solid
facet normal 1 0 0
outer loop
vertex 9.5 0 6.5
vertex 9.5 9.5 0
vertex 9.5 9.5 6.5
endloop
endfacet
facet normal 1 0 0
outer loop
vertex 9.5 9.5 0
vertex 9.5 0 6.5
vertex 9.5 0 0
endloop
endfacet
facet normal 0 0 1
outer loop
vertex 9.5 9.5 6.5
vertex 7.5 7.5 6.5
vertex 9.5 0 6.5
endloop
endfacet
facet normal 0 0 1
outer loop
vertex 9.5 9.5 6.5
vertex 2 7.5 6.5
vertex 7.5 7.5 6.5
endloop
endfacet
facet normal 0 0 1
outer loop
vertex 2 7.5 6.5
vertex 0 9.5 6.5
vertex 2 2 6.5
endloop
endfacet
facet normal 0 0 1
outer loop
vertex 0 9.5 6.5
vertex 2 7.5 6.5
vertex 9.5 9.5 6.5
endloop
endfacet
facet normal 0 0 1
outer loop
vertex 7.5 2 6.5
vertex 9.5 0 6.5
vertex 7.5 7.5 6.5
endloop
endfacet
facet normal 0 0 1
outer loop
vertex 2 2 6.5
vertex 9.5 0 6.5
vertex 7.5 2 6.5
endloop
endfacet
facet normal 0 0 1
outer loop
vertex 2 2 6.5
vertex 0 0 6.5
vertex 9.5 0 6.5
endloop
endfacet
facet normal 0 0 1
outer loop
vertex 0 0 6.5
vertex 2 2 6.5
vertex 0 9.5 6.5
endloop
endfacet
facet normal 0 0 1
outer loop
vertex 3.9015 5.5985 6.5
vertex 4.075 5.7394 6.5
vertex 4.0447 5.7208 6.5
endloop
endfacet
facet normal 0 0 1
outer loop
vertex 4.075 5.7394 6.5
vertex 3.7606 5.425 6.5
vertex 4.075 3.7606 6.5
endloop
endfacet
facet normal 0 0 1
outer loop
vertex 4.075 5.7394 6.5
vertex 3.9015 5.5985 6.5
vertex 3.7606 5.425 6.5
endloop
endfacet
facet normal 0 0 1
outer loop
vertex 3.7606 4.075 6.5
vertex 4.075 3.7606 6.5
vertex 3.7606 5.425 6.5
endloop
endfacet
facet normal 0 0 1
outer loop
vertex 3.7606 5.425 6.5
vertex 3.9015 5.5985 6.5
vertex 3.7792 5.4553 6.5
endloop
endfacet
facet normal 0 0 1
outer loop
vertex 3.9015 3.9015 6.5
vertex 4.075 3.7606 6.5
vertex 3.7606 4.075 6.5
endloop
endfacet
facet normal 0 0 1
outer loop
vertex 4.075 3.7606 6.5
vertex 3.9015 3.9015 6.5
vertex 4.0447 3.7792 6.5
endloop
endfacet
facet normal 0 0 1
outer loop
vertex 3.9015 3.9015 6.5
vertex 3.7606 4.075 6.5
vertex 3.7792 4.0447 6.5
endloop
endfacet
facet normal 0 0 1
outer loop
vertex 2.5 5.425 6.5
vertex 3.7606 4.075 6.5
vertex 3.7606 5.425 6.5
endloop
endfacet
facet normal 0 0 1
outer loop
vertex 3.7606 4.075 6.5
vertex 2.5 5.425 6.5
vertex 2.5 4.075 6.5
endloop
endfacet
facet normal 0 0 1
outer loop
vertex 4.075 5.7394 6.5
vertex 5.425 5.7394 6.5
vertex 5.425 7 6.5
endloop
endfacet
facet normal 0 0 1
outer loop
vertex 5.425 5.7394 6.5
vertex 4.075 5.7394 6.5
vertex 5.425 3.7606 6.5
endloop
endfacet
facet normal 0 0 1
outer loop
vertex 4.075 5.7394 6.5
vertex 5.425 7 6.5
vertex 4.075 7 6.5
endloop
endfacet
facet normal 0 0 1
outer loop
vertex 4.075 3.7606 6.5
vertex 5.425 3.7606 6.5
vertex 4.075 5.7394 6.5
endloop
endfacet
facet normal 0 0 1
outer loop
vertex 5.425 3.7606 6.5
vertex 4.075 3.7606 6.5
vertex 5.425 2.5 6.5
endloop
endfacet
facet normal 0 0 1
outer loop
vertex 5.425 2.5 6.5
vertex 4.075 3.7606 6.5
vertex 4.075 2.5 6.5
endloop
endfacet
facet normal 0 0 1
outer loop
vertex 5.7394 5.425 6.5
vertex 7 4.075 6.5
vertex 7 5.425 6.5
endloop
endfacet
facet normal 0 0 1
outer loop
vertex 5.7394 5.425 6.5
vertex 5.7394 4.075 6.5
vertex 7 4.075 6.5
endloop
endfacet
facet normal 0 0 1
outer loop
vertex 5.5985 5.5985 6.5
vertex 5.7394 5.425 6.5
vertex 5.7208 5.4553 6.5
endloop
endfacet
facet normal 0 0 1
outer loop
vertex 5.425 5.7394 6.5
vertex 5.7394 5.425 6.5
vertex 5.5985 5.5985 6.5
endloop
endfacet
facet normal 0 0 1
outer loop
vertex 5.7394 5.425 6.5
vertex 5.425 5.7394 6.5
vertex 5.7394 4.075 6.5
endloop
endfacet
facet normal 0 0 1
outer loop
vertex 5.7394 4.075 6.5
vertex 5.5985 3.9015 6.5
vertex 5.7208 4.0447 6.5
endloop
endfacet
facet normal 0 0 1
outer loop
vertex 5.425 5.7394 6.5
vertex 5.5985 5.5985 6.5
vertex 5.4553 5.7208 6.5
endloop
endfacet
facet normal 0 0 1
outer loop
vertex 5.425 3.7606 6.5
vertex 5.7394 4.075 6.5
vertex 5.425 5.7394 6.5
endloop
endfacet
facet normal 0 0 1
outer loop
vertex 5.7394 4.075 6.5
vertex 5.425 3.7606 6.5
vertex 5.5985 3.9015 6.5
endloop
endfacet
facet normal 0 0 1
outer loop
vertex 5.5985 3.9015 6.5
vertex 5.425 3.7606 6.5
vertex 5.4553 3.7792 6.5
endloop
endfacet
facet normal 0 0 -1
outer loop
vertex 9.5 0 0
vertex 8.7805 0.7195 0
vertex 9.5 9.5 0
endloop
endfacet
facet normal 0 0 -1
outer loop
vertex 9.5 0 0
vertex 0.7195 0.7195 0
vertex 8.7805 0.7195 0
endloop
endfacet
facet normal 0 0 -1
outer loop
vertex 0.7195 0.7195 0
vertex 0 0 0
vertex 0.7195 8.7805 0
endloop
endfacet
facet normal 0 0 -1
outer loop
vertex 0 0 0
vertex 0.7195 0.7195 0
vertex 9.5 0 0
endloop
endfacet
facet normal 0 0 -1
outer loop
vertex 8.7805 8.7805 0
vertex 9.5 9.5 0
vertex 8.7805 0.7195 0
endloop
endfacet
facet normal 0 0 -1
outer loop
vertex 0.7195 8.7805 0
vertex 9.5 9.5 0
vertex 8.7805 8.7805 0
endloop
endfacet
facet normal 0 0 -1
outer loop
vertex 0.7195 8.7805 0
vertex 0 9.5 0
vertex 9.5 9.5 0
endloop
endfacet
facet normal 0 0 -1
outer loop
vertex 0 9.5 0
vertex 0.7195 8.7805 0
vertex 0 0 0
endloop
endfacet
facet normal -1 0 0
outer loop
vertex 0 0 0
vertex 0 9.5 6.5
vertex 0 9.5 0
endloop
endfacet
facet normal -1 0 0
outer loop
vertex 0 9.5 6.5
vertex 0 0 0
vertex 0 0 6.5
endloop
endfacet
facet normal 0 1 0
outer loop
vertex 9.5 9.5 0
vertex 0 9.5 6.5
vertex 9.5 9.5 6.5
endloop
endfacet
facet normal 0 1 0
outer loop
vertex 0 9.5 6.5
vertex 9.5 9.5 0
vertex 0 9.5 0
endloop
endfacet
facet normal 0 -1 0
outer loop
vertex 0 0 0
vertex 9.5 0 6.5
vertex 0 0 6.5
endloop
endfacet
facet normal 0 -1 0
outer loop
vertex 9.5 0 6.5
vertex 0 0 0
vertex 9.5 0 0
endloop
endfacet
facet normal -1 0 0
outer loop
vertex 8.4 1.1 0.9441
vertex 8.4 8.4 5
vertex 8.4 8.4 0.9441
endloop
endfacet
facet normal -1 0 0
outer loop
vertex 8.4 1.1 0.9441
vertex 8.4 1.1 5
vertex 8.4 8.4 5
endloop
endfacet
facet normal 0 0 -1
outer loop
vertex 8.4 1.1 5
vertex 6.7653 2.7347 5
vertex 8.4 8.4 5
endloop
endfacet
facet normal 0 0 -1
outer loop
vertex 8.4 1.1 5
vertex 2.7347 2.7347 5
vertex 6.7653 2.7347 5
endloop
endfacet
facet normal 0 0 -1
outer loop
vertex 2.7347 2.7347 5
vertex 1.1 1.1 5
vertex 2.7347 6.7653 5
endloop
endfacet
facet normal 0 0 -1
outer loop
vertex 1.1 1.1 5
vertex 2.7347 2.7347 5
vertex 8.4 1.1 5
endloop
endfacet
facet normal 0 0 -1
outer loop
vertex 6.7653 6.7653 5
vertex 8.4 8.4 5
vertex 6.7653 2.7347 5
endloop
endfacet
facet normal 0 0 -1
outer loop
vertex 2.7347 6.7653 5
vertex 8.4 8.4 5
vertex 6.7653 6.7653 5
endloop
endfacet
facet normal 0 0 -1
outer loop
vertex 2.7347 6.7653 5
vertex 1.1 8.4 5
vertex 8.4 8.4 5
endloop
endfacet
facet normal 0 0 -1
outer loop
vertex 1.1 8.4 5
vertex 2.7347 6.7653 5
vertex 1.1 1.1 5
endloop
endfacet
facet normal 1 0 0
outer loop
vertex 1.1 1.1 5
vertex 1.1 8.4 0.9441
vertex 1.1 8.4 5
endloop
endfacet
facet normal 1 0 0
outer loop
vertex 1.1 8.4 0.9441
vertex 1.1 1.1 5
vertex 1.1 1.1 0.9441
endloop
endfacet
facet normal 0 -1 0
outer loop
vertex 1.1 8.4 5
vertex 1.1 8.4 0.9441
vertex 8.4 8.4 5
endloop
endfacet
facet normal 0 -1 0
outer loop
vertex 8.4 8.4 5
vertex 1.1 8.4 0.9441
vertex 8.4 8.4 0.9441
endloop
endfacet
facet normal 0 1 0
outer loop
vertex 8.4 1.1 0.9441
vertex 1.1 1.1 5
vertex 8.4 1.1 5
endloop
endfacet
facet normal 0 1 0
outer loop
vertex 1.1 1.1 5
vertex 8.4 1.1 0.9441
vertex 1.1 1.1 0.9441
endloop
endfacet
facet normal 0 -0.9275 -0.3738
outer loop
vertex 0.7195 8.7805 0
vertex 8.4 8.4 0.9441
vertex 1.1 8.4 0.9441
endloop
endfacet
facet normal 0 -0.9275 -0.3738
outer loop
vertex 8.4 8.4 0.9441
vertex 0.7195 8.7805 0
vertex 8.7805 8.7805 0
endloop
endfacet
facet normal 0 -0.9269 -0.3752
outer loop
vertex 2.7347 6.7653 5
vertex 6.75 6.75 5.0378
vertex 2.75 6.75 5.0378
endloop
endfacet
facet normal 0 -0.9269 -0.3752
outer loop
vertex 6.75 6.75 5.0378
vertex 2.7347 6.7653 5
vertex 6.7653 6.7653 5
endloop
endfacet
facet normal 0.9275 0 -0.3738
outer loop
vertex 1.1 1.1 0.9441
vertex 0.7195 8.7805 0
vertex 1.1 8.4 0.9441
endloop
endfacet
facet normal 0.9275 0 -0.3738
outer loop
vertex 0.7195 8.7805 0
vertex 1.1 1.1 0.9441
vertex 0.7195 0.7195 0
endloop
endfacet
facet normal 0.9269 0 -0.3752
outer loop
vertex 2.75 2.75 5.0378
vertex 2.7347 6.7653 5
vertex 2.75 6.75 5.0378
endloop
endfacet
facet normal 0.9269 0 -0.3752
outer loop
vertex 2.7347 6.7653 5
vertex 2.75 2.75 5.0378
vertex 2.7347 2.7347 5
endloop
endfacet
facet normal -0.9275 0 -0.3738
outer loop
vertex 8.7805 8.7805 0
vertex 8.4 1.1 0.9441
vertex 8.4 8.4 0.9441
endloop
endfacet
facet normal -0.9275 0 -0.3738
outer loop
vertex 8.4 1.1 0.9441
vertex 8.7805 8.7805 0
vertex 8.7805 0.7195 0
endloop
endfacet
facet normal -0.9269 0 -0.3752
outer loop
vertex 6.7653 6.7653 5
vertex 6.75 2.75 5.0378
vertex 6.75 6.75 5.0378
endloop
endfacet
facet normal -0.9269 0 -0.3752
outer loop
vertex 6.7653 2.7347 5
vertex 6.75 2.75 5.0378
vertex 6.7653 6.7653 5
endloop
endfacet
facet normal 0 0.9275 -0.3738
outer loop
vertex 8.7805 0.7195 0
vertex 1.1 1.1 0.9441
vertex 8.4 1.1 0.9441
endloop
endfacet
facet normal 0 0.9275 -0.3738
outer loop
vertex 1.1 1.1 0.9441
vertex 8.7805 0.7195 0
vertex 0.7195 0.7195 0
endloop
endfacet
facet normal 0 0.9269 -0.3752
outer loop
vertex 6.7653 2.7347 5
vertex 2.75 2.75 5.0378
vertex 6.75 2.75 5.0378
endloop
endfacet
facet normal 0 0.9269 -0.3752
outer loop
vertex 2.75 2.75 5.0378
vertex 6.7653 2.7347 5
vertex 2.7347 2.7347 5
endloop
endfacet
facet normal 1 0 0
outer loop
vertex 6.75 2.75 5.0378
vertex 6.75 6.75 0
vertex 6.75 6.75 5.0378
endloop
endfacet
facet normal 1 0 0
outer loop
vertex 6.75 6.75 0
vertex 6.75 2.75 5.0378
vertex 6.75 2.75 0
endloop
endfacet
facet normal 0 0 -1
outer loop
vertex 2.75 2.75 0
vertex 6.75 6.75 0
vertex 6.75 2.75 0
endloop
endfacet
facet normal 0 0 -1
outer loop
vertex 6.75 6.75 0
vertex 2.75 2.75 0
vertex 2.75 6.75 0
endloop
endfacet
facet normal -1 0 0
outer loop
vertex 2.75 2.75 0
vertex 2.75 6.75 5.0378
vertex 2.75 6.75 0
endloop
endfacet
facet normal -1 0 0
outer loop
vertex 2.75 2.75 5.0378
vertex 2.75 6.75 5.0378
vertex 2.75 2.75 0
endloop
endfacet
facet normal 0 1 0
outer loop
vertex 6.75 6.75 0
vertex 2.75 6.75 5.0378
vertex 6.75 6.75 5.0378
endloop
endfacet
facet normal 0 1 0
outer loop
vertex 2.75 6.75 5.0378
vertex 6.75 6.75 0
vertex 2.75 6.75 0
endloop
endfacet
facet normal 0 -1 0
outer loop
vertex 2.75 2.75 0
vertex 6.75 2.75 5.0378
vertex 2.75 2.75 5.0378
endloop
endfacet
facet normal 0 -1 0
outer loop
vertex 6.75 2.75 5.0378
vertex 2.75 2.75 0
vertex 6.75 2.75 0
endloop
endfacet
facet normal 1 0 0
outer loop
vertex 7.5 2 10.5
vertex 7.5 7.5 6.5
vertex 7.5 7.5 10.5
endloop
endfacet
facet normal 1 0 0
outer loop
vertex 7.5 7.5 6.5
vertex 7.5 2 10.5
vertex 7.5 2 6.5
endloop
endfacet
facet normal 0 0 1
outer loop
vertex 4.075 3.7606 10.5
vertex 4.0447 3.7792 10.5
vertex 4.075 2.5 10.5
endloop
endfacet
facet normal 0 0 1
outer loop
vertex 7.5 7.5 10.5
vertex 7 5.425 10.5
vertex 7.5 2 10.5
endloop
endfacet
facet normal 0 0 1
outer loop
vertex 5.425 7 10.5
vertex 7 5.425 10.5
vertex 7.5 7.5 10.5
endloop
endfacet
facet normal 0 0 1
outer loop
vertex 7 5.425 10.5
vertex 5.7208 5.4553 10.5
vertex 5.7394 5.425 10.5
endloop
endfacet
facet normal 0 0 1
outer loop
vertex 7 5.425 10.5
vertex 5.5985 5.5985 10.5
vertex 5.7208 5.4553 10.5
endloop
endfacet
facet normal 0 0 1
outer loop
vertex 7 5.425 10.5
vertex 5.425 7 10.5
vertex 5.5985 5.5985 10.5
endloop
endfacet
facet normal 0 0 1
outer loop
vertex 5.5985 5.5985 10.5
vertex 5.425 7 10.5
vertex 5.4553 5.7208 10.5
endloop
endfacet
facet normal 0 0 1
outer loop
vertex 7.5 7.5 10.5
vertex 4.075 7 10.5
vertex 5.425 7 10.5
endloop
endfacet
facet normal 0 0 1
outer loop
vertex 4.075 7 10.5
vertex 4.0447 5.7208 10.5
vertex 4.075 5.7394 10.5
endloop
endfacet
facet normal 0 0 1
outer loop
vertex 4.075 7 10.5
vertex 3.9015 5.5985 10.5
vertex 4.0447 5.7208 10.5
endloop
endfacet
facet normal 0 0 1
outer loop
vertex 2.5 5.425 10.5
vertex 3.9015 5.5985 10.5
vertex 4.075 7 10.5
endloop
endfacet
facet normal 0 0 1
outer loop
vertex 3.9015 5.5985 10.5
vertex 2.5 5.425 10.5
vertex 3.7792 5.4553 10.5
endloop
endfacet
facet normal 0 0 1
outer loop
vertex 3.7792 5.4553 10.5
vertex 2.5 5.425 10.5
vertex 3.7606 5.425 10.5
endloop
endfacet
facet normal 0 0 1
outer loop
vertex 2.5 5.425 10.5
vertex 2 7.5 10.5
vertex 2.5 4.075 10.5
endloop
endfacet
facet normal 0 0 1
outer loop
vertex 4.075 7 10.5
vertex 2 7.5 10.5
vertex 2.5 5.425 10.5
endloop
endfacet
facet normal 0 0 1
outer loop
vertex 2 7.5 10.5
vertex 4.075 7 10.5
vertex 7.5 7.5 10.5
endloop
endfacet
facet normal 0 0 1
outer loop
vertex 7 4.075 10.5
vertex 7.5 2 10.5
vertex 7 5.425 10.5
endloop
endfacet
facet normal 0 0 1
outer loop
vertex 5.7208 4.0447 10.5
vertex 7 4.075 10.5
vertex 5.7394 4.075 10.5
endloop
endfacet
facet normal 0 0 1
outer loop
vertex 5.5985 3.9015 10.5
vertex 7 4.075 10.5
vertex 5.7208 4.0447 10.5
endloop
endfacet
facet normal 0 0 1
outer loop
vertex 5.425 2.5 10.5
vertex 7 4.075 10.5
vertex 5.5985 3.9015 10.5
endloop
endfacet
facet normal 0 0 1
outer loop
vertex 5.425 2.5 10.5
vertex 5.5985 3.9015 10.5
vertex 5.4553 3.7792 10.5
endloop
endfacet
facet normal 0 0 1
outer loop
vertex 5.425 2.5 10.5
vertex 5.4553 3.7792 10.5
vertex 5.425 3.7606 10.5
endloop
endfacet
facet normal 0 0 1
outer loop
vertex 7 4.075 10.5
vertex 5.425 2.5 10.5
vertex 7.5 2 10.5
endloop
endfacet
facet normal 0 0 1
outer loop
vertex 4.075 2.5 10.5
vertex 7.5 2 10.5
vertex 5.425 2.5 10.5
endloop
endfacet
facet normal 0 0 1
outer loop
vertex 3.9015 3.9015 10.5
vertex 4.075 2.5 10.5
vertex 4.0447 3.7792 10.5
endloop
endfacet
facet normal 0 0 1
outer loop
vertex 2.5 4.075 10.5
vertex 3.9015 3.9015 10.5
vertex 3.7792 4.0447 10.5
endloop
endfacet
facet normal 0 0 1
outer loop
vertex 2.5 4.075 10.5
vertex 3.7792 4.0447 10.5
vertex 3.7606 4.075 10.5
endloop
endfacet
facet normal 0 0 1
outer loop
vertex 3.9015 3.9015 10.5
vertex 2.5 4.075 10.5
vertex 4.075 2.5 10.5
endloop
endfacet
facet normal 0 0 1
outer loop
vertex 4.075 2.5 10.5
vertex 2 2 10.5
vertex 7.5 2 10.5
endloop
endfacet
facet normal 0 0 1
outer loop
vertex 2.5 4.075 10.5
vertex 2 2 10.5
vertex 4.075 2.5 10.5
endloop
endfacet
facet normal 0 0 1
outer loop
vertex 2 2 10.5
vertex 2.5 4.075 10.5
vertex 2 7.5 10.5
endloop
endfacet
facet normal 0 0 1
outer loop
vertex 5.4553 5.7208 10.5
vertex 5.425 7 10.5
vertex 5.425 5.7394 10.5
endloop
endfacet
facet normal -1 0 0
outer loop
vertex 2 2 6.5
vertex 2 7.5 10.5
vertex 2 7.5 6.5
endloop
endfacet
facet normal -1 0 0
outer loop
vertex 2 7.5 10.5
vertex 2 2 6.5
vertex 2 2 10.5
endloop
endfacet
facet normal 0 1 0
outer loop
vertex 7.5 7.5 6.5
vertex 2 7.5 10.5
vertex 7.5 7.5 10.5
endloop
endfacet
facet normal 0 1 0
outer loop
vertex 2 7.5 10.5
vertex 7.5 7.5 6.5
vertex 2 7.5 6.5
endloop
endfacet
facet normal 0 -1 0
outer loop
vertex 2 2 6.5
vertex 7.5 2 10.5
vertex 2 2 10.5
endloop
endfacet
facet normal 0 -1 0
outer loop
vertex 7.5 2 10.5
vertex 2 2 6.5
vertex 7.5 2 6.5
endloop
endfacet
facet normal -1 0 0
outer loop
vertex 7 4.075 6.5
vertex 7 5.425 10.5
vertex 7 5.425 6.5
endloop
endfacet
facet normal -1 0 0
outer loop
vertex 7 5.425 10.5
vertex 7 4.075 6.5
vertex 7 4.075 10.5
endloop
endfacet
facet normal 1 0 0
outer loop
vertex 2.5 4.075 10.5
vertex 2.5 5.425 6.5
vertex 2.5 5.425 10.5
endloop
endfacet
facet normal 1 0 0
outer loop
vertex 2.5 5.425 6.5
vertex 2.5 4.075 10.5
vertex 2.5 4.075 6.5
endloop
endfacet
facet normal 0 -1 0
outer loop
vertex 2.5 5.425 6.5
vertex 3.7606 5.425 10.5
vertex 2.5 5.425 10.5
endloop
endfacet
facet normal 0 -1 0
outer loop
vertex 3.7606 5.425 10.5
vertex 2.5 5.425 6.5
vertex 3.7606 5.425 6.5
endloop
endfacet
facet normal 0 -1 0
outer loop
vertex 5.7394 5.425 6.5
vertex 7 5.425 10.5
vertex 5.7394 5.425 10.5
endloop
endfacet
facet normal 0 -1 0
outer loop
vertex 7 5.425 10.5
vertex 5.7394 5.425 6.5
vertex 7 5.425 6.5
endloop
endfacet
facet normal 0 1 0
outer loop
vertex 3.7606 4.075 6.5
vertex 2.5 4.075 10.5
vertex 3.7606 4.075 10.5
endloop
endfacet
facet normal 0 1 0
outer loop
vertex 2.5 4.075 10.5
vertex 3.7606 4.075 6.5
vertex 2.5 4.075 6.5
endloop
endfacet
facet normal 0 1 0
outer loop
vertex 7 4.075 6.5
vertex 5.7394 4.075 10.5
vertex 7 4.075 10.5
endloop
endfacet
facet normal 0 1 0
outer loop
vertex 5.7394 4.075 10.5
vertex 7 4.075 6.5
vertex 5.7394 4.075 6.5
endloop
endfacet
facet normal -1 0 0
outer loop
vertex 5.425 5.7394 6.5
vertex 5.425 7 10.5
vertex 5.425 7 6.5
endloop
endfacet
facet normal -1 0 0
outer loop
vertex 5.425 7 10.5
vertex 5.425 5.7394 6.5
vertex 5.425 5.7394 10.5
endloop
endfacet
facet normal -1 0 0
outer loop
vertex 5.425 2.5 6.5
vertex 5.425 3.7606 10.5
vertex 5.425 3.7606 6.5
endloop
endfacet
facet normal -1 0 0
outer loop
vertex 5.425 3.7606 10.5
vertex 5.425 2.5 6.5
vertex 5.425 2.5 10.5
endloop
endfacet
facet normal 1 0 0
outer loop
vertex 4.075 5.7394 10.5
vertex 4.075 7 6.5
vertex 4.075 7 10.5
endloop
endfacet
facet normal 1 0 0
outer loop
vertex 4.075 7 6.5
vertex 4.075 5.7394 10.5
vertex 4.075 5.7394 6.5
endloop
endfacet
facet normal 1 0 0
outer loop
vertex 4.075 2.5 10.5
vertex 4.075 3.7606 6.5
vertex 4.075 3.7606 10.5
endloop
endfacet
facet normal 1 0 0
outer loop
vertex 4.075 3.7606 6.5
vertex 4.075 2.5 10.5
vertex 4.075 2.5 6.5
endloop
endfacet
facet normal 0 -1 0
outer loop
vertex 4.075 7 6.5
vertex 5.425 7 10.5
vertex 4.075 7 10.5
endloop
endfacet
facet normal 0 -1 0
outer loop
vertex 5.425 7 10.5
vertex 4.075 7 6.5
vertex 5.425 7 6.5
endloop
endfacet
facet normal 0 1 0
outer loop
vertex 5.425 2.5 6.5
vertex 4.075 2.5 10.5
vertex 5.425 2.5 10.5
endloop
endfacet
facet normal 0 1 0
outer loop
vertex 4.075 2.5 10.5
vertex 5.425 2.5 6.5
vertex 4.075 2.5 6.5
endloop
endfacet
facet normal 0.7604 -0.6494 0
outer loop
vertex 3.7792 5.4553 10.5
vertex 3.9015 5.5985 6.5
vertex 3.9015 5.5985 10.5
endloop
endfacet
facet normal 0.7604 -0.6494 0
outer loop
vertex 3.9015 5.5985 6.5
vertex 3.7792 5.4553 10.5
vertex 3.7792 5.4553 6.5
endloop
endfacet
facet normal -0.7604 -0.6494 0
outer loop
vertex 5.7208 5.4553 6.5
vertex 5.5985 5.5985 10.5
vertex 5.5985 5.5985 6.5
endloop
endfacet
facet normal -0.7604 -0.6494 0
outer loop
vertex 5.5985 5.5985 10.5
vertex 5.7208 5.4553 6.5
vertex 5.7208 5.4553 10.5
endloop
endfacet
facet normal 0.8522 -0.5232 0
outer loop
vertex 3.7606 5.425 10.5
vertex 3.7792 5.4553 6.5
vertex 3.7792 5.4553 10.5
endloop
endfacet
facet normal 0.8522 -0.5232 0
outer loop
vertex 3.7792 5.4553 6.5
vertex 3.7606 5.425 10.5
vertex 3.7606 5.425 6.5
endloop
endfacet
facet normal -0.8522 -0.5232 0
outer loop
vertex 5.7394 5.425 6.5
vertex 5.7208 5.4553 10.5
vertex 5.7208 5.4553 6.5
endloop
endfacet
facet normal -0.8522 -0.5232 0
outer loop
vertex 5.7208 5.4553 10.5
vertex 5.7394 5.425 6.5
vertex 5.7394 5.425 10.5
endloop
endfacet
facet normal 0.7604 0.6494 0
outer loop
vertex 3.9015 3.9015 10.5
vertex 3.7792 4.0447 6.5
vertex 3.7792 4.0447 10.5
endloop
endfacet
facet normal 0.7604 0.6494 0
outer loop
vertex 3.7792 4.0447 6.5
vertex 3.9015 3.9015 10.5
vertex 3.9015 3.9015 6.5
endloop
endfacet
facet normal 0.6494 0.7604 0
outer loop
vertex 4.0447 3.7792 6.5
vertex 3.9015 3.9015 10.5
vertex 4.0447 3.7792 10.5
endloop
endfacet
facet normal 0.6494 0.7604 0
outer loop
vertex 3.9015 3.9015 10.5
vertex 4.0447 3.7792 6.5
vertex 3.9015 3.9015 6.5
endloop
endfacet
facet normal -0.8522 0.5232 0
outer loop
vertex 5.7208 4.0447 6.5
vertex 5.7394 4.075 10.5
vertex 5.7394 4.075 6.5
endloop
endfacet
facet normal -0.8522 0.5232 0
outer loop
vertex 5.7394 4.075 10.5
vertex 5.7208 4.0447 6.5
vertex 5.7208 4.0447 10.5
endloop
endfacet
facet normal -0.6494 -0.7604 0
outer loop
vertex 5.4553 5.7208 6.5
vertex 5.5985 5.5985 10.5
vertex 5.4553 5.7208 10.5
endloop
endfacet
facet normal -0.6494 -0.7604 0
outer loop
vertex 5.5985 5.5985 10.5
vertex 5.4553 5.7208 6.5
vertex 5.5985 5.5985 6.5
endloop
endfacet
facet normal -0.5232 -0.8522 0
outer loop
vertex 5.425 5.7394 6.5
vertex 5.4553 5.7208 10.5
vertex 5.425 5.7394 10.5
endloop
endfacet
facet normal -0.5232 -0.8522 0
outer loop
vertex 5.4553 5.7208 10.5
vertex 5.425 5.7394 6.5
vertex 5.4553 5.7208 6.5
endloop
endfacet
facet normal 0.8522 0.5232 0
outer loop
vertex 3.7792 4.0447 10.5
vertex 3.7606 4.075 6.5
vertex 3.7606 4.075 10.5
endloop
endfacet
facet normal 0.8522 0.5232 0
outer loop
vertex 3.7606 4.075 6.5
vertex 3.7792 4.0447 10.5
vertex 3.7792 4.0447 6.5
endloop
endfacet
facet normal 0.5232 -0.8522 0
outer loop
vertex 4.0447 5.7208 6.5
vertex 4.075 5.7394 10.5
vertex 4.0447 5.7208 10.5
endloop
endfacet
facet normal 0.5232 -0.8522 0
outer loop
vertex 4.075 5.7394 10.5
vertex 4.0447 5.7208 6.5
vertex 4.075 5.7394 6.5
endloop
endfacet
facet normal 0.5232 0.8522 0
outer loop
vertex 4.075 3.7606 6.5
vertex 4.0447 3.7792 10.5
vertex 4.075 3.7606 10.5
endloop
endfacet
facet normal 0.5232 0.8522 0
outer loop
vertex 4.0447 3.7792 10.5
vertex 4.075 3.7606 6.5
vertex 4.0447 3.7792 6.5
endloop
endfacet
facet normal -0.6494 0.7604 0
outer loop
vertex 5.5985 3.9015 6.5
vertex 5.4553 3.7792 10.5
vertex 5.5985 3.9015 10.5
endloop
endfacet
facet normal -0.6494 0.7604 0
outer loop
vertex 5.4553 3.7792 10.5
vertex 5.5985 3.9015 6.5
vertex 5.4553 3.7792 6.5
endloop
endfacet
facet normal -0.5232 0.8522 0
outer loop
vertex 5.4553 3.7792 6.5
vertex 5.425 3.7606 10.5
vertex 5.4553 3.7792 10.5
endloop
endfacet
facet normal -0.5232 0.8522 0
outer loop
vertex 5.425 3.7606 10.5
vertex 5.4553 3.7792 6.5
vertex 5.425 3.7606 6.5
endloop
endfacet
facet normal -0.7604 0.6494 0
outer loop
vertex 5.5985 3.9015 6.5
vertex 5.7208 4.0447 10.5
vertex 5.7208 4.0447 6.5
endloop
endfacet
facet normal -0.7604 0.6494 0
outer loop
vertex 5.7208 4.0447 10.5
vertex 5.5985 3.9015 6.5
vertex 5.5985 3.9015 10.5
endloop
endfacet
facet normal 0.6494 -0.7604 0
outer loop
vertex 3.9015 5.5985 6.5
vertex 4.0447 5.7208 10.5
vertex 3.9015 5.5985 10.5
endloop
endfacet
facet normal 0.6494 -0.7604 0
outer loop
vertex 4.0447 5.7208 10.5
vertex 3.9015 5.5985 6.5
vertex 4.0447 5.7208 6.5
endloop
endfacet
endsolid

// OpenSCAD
lo1 = 9.5;
ho1 = 6.5;

li1 = 7.3;
hi1 = 5;

li2 = 4.0;
hi2 = ho1;

ofs1 = (lo1 - li1) / 2;
ofs2 = (lo1 - li2) / 2;

rr = 5.7;
o4 = (lo1) / 2;

module hitek() {

union() {
difference() {
	union() {
        translate([0, 0, 0])
			cube([lo1, lo1, ho1], center = false);
        }
    translate([ofs1, ofs1, 0]) cube([li1, li1, hi1], center = false);
translate([o4, o4, 0])rotate([0,0,45])cylinder(10,rr,0,$fn=4, center = false);
}
    translate([ofs2, ofs2, 0]) cube([li2, li2, hi2], center = false);
   // translate([0, 0, hi1]) cube([lo1, lo1, ho1-hi1], center = false);
}

}

cl = 5.5;
ch = 4;
cx = 4.5;
cw = 1.35;
ri = 1.2;

co1 = (cl - cx) / 2;
co2 = (cl - cw) / 2;

module cherry() {

union() {
difference() {
	union() {
        translate([0, 0, 0])
			cube([cl, cl, ch], center = false);
        }
    translate([co1, co2, 0]) cube([cx, cw, ch], center = false);
    translate([co2, co1, 0]) cube([cw, cx, ch], center = false);
    translate([cl/2, cl/2, 0])rotate([0,0,0])cylinder(10,ri,ri,$fn=40, center = false);
}
}

}

o3 = (lo1 - cl) / 2;
translate([0, 0, 0])hitek();
translate([o3, o3, ho1])cherry();
